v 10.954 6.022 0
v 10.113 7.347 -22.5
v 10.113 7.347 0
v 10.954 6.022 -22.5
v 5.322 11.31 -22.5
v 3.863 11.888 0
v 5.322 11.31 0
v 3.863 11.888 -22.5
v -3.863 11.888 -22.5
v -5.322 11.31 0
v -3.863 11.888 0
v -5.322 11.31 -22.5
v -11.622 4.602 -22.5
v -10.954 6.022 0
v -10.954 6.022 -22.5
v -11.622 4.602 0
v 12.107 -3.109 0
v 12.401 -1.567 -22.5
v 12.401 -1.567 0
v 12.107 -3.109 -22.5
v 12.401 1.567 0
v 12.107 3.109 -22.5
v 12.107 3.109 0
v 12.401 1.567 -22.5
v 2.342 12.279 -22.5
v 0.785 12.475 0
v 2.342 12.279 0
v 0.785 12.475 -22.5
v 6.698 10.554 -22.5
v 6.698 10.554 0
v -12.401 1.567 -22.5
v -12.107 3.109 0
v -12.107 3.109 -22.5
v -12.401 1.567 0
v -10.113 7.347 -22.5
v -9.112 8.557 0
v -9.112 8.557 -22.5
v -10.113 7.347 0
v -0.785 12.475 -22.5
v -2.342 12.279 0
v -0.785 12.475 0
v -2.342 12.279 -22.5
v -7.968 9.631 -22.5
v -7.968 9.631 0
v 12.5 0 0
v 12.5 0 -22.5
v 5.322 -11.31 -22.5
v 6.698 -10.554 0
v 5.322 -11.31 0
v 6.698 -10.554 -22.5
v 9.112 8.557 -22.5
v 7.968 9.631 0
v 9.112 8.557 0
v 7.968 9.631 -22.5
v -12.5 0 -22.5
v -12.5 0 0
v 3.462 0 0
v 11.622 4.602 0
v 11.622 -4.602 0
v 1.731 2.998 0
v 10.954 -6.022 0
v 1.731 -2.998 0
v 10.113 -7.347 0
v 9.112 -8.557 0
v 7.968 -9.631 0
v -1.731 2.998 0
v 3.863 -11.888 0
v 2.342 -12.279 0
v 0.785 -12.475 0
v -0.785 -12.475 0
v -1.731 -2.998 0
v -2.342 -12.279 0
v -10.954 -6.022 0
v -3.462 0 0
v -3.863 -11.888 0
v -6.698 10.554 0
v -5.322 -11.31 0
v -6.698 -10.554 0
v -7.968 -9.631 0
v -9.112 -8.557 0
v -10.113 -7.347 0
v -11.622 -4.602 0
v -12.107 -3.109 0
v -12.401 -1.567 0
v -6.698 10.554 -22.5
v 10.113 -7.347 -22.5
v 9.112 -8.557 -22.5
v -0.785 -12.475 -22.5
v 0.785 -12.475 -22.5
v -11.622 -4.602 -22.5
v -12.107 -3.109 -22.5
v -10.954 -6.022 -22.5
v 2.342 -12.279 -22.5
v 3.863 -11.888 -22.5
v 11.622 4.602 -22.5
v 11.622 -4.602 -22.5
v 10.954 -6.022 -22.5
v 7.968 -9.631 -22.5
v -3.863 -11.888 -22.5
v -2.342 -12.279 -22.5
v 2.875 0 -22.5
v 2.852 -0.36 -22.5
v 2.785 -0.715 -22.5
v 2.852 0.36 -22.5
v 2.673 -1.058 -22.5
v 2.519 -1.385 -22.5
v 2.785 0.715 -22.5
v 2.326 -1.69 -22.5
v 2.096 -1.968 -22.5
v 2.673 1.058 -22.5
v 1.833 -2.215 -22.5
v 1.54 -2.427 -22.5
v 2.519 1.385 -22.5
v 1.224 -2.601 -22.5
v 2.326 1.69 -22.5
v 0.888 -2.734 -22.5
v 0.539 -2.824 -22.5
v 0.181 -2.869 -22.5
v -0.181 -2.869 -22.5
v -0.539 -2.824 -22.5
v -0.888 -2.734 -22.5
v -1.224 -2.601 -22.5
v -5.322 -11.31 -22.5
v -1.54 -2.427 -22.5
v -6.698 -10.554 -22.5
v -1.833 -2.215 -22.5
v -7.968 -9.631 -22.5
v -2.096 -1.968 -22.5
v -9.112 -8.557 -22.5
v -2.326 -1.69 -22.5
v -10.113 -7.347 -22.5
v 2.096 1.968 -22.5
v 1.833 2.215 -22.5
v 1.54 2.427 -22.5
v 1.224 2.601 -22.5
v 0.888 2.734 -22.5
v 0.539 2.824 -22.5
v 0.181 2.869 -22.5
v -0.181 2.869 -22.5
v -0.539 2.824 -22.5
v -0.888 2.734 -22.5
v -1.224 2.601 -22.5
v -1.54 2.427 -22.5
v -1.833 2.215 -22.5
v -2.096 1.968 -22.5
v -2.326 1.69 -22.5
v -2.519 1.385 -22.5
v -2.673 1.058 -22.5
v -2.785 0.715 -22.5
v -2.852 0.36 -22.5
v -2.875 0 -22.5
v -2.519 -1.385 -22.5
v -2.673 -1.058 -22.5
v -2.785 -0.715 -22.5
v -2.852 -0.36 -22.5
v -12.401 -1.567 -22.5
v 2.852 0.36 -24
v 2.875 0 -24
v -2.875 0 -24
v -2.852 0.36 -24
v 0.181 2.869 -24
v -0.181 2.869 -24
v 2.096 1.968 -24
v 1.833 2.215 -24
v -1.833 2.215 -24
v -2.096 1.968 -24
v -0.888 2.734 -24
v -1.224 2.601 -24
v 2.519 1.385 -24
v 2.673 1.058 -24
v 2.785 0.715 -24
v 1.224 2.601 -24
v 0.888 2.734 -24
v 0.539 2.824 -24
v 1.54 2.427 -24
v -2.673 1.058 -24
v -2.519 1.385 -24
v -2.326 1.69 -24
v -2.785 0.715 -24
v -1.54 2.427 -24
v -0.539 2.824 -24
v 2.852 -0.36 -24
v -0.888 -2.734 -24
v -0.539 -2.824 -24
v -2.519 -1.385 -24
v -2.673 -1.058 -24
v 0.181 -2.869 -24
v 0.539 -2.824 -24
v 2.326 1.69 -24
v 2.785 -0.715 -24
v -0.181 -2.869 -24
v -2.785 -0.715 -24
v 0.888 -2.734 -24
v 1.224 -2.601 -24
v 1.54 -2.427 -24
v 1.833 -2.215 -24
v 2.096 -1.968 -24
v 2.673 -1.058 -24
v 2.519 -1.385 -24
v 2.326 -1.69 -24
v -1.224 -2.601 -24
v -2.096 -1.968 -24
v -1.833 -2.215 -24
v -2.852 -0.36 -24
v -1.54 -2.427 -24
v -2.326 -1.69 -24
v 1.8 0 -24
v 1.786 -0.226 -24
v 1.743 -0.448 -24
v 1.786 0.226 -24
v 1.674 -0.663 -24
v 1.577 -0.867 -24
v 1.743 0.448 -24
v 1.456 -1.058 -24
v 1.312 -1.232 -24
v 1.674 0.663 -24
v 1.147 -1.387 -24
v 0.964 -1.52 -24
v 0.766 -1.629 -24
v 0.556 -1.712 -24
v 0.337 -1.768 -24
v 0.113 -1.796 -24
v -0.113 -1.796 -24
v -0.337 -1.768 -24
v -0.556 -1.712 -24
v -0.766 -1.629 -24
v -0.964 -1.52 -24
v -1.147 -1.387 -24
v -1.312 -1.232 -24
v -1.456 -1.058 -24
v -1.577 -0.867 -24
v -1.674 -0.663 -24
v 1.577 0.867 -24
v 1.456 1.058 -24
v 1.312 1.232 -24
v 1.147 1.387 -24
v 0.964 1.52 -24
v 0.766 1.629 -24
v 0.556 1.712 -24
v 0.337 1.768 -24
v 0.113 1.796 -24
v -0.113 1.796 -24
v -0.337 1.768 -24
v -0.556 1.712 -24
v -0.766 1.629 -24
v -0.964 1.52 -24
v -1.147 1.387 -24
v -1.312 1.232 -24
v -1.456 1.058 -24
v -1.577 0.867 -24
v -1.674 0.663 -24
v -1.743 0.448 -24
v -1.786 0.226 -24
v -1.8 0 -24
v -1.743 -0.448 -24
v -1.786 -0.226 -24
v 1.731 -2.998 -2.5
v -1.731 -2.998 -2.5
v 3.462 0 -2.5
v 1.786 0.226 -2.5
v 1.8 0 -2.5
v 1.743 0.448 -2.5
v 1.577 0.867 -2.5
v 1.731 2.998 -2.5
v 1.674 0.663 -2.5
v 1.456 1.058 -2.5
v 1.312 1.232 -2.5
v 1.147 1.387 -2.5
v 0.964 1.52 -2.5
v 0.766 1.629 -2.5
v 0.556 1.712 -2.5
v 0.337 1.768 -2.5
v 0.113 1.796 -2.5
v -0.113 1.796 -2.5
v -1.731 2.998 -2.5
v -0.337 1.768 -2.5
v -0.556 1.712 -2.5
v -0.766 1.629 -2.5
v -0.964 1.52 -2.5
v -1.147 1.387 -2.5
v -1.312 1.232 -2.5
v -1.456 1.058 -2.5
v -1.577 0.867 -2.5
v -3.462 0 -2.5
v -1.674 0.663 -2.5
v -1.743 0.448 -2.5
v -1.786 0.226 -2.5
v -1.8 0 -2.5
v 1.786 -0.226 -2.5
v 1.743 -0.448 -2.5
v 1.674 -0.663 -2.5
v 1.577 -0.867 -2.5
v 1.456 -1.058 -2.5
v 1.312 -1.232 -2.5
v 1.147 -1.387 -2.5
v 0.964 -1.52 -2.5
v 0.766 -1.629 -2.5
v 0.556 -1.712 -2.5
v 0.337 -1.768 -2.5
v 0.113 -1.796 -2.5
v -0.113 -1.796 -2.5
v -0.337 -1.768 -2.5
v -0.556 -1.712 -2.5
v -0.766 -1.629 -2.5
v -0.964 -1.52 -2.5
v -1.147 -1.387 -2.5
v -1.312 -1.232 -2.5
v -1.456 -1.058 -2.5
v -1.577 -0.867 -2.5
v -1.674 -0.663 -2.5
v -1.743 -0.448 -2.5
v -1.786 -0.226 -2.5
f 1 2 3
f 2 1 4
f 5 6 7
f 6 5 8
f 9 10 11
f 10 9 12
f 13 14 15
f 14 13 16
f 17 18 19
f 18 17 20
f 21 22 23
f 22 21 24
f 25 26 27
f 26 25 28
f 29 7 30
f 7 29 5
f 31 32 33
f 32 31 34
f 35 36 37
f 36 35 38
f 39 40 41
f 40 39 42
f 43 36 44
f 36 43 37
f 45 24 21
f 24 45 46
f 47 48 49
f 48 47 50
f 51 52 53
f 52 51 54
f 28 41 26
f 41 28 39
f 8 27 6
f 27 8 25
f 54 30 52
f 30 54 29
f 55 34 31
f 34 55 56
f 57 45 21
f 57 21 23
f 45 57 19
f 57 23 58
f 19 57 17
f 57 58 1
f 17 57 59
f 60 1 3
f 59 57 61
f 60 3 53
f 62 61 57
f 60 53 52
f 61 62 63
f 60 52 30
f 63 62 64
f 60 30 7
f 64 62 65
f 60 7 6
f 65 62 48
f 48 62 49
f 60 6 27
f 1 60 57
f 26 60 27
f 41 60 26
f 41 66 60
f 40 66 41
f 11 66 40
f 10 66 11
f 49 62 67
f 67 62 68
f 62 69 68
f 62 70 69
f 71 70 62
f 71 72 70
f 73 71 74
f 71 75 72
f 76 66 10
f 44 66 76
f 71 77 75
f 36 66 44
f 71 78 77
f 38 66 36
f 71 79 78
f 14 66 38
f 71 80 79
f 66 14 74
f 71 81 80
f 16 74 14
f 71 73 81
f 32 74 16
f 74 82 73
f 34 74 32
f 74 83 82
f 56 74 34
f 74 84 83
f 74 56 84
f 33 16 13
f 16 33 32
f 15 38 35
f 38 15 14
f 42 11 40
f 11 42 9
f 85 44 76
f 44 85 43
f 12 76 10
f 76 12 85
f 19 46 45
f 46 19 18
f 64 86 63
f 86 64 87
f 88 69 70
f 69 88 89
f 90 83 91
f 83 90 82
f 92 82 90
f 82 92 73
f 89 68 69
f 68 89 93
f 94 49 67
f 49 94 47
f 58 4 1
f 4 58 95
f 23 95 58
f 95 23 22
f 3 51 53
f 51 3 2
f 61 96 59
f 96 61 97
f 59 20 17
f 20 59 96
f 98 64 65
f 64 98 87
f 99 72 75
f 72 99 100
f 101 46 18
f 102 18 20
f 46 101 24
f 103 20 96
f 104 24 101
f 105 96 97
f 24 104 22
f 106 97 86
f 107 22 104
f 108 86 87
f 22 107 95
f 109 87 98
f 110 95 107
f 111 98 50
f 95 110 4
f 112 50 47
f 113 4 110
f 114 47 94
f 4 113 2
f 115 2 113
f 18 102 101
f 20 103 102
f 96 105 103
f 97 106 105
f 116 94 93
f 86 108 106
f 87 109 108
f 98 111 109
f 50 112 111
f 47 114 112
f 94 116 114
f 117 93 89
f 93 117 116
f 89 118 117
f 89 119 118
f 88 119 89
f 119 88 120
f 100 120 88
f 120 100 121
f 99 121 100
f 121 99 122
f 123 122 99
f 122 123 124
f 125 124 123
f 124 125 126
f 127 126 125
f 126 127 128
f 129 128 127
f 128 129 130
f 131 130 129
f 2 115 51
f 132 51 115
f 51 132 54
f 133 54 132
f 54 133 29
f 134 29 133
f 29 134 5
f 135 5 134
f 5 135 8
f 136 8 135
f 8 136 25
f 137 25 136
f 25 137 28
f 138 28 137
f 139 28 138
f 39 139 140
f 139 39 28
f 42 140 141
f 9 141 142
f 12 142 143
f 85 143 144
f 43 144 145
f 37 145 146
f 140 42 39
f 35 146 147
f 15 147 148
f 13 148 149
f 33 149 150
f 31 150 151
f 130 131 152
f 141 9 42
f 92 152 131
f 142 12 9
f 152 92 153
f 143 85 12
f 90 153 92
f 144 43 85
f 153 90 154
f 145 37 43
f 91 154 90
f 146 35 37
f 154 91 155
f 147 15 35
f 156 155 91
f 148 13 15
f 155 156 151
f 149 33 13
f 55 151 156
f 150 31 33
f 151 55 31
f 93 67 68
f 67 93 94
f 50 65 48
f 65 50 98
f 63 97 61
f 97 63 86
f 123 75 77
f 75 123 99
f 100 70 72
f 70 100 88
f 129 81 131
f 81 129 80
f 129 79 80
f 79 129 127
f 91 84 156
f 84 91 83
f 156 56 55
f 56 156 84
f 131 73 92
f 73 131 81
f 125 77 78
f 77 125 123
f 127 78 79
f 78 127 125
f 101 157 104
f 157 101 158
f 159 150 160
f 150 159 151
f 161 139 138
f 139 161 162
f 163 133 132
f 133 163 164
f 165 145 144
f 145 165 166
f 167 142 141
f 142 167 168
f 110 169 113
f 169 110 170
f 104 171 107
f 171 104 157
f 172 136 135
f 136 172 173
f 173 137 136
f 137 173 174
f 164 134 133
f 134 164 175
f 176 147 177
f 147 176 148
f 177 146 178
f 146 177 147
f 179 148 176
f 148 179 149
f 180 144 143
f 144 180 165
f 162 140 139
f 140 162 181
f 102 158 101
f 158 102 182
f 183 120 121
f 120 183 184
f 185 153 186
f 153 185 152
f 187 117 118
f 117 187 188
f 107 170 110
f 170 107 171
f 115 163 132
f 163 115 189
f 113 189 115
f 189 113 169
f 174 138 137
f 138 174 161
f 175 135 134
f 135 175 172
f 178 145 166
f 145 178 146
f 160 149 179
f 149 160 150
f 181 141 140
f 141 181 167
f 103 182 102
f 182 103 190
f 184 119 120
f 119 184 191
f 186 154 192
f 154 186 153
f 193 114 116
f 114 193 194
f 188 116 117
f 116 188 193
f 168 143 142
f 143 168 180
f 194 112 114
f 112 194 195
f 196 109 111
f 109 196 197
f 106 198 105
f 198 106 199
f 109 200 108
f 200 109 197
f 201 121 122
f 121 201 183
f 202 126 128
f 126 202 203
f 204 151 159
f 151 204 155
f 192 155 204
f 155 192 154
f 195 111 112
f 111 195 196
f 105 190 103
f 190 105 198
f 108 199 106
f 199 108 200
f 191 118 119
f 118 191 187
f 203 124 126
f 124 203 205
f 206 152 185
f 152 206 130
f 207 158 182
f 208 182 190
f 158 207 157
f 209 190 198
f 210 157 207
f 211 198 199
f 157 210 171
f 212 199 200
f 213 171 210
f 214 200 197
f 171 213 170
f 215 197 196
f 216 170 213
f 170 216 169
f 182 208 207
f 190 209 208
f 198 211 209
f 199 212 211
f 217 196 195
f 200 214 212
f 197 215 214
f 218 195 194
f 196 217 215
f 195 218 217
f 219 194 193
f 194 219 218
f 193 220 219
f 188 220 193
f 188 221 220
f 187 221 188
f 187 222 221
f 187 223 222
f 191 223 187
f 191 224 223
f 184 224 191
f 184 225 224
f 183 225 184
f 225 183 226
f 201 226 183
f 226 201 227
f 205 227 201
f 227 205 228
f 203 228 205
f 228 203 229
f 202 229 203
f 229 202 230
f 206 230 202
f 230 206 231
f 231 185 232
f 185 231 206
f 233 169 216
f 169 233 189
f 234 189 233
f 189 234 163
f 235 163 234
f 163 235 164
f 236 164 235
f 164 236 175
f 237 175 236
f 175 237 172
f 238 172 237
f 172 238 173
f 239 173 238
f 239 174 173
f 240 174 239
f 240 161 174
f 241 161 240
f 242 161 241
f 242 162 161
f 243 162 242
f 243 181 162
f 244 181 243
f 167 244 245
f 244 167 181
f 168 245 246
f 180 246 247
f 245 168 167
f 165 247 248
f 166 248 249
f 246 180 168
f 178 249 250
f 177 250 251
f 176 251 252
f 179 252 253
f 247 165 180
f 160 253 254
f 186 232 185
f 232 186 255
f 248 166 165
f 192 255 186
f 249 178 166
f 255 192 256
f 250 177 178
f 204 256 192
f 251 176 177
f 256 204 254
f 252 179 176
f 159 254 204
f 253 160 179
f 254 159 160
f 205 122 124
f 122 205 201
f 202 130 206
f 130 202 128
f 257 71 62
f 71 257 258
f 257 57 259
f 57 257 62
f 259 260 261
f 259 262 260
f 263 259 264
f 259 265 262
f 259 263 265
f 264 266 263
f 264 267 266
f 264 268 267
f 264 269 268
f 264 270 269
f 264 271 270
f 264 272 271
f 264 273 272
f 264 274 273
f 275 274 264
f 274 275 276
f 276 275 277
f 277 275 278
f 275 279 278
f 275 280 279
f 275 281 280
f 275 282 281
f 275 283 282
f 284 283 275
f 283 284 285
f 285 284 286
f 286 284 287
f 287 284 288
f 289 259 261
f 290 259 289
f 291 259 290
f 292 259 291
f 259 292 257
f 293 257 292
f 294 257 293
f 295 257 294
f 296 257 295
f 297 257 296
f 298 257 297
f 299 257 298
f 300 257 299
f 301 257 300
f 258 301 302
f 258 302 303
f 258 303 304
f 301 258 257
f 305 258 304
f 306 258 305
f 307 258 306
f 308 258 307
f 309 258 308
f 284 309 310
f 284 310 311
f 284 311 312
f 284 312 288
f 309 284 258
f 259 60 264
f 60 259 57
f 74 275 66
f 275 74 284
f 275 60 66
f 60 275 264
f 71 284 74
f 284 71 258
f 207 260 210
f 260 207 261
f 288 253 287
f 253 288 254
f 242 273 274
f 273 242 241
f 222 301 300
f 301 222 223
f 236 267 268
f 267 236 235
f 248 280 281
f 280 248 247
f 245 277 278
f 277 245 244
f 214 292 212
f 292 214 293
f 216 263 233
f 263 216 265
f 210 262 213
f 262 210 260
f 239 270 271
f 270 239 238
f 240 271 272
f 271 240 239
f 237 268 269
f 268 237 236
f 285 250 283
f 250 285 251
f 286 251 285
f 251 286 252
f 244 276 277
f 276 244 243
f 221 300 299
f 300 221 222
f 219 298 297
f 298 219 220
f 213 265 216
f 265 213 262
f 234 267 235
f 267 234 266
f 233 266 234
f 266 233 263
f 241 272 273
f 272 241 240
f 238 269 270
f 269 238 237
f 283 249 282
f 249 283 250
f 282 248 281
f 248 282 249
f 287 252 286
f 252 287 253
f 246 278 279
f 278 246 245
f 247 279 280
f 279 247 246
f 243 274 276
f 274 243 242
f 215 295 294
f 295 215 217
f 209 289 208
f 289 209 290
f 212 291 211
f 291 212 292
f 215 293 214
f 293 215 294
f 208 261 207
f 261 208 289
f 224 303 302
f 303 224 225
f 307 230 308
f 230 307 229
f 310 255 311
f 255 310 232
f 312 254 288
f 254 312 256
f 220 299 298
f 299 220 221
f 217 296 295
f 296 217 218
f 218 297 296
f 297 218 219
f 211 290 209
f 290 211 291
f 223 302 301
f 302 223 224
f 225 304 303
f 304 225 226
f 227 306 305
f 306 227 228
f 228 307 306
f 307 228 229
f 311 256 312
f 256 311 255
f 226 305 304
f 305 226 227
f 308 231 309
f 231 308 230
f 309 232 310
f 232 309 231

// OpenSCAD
$fn = 50;

difference() {
	union() {
		translate(v = [0, 0, -22.5]) {
			cylinder(h = 22.5, r = 12.5);
		}
		#translate(v = [0, 0, -24.0]) {
			cylinder(h = 24, r = 2.875);
		}
	}
	union() {
		translate(v = [0, 0, 0]) {
			rotate(a = [0, 0, 0]) {
				difference() {
					union() {
						translate(v = [0, 0, -2.5]) {
							linear_extrude(height = 2.5) {
								polygon(points = [[3.4619999999999997, 0.0], [1.7310000000000003, 2.9981799479017264], [-1.7309999999999992, 2.9981799479017264], [-3.4619999999999997, 4.2397272186481365e-16], [-1.7310000000000014, -2.998179947901726], [1.7309999999999977, -2.9981799479017277]]);
							}
						}
					}
					union();
				}
			}
		}
		#translate(v = [0, 0, -100.0]) {
			cylinder(h = 200, r = 1.8);
		}
	}
}
